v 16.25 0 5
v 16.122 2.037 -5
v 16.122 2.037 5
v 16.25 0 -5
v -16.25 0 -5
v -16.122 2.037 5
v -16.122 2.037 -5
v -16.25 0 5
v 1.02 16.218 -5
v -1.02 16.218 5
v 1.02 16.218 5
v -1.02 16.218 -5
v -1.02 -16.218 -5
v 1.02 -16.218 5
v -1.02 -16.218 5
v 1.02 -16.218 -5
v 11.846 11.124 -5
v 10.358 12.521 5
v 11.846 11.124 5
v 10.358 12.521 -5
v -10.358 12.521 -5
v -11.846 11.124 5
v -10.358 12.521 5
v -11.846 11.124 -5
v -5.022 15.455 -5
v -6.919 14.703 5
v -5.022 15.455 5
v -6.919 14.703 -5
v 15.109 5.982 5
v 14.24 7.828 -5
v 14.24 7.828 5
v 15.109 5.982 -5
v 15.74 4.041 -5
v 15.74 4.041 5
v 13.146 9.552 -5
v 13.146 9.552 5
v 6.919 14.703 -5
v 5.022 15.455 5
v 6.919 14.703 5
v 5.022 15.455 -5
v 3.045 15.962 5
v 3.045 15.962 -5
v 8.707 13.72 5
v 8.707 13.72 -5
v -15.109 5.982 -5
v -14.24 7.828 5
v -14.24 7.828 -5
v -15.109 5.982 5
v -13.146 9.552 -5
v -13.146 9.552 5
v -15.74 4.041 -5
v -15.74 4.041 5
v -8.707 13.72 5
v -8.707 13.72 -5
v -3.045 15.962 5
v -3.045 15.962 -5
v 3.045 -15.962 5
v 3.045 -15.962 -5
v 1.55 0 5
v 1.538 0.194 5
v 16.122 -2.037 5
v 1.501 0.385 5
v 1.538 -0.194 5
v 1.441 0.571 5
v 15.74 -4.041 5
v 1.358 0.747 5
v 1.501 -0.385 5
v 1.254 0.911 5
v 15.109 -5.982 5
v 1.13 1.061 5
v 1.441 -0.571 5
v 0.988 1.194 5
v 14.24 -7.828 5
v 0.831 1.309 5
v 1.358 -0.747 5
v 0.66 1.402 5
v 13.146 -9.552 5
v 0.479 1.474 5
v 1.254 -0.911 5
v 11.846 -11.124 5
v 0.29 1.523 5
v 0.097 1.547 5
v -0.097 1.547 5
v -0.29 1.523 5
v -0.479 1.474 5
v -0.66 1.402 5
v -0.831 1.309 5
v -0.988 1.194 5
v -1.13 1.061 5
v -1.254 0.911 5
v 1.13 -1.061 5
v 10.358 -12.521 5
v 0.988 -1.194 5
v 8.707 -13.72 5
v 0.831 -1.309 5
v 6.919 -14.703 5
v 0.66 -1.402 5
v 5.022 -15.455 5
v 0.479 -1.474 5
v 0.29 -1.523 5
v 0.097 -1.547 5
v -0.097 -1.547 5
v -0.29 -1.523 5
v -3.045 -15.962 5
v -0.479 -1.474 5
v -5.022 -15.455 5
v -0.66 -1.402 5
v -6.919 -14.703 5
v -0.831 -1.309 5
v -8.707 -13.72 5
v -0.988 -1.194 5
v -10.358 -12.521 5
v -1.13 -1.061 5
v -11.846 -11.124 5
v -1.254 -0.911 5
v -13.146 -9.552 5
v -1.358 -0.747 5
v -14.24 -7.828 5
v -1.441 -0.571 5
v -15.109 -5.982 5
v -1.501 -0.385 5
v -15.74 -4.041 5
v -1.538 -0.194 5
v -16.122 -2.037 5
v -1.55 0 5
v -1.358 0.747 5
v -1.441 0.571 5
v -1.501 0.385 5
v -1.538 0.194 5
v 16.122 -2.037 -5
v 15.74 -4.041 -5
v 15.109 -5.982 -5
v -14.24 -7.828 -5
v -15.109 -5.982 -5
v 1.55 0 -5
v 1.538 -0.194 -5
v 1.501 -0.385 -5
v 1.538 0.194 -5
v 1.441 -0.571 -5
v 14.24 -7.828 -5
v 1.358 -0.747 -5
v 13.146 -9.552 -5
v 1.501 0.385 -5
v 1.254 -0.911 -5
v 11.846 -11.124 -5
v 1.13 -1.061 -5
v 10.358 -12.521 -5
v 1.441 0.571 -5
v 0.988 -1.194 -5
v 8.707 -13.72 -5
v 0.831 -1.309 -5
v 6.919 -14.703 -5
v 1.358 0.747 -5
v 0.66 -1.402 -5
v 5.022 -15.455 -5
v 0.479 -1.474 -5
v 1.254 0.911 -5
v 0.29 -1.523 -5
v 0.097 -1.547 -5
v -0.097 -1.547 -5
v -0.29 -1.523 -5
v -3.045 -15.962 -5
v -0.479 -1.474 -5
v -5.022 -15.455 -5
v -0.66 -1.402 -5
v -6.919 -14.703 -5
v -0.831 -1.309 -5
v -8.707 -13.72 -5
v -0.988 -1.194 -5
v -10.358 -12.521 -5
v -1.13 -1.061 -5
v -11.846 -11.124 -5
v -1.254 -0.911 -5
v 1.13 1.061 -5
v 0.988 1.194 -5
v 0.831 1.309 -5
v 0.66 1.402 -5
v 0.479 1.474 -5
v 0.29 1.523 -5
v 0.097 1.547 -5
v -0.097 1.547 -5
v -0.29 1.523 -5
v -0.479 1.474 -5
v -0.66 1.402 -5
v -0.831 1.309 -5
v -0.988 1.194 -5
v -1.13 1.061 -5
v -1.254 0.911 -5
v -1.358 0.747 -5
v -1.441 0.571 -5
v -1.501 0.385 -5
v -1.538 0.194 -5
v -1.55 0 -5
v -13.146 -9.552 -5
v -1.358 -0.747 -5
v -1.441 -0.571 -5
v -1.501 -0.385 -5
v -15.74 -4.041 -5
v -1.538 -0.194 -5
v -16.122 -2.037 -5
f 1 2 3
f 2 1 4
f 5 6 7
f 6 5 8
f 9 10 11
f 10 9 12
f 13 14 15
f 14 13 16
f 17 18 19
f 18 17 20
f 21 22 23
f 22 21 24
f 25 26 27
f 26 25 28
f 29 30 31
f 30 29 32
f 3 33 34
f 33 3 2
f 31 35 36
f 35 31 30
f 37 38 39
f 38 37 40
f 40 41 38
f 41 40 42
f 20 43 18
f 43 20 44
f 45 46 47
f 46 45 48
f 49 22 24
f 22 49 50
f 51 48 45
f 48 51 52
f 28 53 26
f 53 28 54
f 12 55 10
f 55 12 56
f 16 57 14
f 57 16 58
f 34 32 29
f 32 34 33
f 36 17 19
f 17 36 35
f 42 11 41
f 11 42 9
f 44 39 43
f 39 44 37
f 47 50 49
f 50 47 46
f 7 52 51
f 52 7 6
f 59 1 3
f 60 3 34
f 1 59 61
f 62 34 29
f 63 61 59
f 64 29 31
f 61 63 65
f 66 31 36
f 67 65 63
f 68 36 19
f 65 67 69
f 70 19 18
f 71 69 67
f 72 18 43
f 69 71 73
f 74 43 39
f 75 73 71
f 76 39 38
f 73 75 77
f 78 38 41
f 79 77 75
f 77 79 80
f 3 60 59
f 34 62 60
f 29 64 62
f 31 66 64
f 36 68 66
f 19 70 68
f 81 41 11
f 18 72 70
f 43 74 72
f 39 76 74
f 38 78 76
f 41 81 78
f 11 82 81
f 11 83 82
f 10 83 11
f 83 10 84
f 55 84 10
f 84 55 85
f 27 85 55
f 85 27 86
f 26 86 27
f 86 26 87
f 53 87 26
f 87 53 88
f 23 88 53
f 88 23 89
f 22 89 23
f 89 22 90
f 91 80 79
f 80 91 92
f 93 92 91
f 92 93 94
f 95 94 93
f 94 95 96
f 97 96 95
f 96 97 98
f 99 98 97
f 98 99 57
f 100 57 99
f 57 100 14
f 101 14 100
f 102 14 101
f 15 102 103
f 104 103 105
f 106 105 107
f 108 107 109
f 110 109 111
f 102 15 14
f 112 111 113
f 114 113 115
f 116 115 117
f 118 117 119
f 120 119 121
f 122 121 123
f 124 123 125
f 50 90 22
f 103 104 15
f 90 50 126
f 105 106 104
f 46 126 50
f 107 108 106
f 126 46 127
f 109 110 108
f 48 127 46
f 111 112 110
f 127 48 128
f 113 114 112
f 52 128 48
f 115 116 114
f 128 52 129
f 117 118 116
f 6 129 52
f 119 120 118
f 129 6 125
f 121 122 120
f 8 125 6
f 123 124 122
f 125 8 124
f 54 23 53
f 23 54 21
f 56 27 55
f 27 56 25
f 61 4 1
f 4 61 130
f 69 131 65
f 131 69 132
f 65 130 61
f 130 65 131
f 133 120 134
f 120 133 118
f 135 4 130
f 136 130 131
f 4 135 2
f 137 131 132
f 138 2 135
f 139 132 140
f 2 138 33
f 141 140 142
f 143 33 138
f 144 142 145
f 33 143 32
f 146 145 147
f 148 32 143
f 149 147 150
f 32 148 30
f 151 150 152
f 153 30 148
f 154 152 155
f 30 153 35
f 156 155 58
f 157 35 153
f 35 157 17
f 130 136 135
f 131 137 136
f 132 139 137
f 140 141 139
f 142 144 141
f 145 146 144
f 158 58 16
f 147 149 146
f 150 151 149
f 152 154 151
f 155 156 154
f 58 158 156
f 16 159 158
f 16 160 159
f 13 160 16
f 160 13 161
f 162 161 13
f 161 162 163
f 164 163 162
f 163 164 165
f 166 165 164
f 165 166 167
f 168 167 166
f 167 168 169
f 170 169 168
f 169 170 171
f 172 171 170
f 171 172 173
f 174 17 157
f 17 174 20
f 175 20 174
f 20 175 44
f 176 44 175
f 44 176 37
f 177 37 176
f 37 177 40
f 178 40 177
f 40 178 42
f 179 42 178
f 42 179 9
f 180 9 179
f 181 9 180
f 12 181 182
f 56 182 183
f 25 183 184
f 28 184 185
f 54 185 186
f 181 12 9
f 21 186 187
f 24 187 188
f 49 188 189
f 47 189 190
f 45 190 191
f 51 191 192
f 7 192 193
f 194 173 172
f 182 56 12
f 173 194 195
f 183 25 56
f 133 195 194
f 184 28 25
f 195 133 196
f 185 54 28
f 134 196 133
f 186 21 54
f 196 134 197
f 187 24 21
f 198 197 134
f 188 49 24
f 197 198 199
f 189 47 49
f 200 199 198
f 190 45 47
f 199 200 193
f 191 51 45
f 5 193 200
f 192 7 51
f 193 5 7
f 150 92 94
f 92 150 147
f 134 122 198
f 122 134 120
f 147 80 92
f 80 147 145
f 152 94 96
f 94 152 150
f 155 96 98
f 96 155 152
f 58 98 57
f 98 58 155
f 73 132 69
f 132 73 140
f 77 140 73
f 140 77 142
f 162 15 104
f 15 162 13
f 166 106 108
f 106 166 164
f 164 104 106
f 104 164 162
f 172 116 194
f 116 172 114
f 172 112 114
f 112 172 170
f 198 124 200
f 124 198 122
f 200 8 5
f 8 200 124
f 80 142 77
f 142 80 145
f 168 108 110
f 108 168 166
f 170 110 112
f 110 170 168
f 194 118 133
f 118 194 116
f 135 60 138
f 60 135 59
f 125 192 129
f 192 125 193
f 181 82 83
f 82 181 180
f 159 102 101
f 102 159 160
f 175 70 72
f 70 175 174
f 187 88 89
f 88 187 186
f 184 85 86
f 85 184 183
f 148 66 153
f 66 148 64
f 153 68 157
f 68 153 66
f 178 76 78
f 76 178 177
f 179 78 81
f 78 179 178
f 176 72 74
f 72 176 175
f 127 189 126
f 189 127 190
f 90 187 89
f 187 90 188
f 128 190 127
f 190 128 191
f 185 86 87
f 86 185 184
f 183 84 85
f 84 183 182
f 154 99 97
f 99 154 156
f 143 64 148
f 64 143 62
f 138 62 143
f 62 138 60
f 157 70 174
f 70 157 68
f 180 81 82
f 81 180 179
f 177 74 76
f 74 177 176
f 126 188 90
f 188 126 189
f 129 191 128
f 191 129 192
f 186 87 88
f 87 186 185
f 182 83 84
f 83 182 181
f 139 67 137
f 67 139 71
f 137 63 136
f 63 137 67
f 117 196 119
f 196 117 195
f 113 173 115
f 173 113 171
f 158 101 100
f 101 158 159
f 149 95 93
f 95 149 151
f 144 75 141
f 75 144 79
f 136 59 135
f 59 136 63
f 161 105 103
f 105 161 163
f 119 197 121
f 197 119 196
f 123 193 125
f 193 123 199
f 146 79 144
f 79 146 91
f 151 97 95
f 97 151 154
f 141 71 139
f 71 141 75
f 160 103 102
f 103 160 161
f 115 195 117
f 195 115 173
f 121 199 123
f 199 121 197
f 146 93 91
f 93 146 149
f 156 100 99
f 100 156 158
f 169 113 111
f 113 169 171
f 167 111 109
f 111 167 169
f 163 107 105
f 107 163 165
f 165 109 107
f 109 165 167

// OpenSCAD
$fn = 50;


difference() {
	union() {
		translate(v = [0, 0, -5.0000000000]) {
			cylinder(h = 10, r = 16.2500000000);
		}
	}
	union() {
		translate(v = [0, 0, -100.0000000000]) {
			cylinder(h = 200, r = 1.5500000000);
		}
	}
}
